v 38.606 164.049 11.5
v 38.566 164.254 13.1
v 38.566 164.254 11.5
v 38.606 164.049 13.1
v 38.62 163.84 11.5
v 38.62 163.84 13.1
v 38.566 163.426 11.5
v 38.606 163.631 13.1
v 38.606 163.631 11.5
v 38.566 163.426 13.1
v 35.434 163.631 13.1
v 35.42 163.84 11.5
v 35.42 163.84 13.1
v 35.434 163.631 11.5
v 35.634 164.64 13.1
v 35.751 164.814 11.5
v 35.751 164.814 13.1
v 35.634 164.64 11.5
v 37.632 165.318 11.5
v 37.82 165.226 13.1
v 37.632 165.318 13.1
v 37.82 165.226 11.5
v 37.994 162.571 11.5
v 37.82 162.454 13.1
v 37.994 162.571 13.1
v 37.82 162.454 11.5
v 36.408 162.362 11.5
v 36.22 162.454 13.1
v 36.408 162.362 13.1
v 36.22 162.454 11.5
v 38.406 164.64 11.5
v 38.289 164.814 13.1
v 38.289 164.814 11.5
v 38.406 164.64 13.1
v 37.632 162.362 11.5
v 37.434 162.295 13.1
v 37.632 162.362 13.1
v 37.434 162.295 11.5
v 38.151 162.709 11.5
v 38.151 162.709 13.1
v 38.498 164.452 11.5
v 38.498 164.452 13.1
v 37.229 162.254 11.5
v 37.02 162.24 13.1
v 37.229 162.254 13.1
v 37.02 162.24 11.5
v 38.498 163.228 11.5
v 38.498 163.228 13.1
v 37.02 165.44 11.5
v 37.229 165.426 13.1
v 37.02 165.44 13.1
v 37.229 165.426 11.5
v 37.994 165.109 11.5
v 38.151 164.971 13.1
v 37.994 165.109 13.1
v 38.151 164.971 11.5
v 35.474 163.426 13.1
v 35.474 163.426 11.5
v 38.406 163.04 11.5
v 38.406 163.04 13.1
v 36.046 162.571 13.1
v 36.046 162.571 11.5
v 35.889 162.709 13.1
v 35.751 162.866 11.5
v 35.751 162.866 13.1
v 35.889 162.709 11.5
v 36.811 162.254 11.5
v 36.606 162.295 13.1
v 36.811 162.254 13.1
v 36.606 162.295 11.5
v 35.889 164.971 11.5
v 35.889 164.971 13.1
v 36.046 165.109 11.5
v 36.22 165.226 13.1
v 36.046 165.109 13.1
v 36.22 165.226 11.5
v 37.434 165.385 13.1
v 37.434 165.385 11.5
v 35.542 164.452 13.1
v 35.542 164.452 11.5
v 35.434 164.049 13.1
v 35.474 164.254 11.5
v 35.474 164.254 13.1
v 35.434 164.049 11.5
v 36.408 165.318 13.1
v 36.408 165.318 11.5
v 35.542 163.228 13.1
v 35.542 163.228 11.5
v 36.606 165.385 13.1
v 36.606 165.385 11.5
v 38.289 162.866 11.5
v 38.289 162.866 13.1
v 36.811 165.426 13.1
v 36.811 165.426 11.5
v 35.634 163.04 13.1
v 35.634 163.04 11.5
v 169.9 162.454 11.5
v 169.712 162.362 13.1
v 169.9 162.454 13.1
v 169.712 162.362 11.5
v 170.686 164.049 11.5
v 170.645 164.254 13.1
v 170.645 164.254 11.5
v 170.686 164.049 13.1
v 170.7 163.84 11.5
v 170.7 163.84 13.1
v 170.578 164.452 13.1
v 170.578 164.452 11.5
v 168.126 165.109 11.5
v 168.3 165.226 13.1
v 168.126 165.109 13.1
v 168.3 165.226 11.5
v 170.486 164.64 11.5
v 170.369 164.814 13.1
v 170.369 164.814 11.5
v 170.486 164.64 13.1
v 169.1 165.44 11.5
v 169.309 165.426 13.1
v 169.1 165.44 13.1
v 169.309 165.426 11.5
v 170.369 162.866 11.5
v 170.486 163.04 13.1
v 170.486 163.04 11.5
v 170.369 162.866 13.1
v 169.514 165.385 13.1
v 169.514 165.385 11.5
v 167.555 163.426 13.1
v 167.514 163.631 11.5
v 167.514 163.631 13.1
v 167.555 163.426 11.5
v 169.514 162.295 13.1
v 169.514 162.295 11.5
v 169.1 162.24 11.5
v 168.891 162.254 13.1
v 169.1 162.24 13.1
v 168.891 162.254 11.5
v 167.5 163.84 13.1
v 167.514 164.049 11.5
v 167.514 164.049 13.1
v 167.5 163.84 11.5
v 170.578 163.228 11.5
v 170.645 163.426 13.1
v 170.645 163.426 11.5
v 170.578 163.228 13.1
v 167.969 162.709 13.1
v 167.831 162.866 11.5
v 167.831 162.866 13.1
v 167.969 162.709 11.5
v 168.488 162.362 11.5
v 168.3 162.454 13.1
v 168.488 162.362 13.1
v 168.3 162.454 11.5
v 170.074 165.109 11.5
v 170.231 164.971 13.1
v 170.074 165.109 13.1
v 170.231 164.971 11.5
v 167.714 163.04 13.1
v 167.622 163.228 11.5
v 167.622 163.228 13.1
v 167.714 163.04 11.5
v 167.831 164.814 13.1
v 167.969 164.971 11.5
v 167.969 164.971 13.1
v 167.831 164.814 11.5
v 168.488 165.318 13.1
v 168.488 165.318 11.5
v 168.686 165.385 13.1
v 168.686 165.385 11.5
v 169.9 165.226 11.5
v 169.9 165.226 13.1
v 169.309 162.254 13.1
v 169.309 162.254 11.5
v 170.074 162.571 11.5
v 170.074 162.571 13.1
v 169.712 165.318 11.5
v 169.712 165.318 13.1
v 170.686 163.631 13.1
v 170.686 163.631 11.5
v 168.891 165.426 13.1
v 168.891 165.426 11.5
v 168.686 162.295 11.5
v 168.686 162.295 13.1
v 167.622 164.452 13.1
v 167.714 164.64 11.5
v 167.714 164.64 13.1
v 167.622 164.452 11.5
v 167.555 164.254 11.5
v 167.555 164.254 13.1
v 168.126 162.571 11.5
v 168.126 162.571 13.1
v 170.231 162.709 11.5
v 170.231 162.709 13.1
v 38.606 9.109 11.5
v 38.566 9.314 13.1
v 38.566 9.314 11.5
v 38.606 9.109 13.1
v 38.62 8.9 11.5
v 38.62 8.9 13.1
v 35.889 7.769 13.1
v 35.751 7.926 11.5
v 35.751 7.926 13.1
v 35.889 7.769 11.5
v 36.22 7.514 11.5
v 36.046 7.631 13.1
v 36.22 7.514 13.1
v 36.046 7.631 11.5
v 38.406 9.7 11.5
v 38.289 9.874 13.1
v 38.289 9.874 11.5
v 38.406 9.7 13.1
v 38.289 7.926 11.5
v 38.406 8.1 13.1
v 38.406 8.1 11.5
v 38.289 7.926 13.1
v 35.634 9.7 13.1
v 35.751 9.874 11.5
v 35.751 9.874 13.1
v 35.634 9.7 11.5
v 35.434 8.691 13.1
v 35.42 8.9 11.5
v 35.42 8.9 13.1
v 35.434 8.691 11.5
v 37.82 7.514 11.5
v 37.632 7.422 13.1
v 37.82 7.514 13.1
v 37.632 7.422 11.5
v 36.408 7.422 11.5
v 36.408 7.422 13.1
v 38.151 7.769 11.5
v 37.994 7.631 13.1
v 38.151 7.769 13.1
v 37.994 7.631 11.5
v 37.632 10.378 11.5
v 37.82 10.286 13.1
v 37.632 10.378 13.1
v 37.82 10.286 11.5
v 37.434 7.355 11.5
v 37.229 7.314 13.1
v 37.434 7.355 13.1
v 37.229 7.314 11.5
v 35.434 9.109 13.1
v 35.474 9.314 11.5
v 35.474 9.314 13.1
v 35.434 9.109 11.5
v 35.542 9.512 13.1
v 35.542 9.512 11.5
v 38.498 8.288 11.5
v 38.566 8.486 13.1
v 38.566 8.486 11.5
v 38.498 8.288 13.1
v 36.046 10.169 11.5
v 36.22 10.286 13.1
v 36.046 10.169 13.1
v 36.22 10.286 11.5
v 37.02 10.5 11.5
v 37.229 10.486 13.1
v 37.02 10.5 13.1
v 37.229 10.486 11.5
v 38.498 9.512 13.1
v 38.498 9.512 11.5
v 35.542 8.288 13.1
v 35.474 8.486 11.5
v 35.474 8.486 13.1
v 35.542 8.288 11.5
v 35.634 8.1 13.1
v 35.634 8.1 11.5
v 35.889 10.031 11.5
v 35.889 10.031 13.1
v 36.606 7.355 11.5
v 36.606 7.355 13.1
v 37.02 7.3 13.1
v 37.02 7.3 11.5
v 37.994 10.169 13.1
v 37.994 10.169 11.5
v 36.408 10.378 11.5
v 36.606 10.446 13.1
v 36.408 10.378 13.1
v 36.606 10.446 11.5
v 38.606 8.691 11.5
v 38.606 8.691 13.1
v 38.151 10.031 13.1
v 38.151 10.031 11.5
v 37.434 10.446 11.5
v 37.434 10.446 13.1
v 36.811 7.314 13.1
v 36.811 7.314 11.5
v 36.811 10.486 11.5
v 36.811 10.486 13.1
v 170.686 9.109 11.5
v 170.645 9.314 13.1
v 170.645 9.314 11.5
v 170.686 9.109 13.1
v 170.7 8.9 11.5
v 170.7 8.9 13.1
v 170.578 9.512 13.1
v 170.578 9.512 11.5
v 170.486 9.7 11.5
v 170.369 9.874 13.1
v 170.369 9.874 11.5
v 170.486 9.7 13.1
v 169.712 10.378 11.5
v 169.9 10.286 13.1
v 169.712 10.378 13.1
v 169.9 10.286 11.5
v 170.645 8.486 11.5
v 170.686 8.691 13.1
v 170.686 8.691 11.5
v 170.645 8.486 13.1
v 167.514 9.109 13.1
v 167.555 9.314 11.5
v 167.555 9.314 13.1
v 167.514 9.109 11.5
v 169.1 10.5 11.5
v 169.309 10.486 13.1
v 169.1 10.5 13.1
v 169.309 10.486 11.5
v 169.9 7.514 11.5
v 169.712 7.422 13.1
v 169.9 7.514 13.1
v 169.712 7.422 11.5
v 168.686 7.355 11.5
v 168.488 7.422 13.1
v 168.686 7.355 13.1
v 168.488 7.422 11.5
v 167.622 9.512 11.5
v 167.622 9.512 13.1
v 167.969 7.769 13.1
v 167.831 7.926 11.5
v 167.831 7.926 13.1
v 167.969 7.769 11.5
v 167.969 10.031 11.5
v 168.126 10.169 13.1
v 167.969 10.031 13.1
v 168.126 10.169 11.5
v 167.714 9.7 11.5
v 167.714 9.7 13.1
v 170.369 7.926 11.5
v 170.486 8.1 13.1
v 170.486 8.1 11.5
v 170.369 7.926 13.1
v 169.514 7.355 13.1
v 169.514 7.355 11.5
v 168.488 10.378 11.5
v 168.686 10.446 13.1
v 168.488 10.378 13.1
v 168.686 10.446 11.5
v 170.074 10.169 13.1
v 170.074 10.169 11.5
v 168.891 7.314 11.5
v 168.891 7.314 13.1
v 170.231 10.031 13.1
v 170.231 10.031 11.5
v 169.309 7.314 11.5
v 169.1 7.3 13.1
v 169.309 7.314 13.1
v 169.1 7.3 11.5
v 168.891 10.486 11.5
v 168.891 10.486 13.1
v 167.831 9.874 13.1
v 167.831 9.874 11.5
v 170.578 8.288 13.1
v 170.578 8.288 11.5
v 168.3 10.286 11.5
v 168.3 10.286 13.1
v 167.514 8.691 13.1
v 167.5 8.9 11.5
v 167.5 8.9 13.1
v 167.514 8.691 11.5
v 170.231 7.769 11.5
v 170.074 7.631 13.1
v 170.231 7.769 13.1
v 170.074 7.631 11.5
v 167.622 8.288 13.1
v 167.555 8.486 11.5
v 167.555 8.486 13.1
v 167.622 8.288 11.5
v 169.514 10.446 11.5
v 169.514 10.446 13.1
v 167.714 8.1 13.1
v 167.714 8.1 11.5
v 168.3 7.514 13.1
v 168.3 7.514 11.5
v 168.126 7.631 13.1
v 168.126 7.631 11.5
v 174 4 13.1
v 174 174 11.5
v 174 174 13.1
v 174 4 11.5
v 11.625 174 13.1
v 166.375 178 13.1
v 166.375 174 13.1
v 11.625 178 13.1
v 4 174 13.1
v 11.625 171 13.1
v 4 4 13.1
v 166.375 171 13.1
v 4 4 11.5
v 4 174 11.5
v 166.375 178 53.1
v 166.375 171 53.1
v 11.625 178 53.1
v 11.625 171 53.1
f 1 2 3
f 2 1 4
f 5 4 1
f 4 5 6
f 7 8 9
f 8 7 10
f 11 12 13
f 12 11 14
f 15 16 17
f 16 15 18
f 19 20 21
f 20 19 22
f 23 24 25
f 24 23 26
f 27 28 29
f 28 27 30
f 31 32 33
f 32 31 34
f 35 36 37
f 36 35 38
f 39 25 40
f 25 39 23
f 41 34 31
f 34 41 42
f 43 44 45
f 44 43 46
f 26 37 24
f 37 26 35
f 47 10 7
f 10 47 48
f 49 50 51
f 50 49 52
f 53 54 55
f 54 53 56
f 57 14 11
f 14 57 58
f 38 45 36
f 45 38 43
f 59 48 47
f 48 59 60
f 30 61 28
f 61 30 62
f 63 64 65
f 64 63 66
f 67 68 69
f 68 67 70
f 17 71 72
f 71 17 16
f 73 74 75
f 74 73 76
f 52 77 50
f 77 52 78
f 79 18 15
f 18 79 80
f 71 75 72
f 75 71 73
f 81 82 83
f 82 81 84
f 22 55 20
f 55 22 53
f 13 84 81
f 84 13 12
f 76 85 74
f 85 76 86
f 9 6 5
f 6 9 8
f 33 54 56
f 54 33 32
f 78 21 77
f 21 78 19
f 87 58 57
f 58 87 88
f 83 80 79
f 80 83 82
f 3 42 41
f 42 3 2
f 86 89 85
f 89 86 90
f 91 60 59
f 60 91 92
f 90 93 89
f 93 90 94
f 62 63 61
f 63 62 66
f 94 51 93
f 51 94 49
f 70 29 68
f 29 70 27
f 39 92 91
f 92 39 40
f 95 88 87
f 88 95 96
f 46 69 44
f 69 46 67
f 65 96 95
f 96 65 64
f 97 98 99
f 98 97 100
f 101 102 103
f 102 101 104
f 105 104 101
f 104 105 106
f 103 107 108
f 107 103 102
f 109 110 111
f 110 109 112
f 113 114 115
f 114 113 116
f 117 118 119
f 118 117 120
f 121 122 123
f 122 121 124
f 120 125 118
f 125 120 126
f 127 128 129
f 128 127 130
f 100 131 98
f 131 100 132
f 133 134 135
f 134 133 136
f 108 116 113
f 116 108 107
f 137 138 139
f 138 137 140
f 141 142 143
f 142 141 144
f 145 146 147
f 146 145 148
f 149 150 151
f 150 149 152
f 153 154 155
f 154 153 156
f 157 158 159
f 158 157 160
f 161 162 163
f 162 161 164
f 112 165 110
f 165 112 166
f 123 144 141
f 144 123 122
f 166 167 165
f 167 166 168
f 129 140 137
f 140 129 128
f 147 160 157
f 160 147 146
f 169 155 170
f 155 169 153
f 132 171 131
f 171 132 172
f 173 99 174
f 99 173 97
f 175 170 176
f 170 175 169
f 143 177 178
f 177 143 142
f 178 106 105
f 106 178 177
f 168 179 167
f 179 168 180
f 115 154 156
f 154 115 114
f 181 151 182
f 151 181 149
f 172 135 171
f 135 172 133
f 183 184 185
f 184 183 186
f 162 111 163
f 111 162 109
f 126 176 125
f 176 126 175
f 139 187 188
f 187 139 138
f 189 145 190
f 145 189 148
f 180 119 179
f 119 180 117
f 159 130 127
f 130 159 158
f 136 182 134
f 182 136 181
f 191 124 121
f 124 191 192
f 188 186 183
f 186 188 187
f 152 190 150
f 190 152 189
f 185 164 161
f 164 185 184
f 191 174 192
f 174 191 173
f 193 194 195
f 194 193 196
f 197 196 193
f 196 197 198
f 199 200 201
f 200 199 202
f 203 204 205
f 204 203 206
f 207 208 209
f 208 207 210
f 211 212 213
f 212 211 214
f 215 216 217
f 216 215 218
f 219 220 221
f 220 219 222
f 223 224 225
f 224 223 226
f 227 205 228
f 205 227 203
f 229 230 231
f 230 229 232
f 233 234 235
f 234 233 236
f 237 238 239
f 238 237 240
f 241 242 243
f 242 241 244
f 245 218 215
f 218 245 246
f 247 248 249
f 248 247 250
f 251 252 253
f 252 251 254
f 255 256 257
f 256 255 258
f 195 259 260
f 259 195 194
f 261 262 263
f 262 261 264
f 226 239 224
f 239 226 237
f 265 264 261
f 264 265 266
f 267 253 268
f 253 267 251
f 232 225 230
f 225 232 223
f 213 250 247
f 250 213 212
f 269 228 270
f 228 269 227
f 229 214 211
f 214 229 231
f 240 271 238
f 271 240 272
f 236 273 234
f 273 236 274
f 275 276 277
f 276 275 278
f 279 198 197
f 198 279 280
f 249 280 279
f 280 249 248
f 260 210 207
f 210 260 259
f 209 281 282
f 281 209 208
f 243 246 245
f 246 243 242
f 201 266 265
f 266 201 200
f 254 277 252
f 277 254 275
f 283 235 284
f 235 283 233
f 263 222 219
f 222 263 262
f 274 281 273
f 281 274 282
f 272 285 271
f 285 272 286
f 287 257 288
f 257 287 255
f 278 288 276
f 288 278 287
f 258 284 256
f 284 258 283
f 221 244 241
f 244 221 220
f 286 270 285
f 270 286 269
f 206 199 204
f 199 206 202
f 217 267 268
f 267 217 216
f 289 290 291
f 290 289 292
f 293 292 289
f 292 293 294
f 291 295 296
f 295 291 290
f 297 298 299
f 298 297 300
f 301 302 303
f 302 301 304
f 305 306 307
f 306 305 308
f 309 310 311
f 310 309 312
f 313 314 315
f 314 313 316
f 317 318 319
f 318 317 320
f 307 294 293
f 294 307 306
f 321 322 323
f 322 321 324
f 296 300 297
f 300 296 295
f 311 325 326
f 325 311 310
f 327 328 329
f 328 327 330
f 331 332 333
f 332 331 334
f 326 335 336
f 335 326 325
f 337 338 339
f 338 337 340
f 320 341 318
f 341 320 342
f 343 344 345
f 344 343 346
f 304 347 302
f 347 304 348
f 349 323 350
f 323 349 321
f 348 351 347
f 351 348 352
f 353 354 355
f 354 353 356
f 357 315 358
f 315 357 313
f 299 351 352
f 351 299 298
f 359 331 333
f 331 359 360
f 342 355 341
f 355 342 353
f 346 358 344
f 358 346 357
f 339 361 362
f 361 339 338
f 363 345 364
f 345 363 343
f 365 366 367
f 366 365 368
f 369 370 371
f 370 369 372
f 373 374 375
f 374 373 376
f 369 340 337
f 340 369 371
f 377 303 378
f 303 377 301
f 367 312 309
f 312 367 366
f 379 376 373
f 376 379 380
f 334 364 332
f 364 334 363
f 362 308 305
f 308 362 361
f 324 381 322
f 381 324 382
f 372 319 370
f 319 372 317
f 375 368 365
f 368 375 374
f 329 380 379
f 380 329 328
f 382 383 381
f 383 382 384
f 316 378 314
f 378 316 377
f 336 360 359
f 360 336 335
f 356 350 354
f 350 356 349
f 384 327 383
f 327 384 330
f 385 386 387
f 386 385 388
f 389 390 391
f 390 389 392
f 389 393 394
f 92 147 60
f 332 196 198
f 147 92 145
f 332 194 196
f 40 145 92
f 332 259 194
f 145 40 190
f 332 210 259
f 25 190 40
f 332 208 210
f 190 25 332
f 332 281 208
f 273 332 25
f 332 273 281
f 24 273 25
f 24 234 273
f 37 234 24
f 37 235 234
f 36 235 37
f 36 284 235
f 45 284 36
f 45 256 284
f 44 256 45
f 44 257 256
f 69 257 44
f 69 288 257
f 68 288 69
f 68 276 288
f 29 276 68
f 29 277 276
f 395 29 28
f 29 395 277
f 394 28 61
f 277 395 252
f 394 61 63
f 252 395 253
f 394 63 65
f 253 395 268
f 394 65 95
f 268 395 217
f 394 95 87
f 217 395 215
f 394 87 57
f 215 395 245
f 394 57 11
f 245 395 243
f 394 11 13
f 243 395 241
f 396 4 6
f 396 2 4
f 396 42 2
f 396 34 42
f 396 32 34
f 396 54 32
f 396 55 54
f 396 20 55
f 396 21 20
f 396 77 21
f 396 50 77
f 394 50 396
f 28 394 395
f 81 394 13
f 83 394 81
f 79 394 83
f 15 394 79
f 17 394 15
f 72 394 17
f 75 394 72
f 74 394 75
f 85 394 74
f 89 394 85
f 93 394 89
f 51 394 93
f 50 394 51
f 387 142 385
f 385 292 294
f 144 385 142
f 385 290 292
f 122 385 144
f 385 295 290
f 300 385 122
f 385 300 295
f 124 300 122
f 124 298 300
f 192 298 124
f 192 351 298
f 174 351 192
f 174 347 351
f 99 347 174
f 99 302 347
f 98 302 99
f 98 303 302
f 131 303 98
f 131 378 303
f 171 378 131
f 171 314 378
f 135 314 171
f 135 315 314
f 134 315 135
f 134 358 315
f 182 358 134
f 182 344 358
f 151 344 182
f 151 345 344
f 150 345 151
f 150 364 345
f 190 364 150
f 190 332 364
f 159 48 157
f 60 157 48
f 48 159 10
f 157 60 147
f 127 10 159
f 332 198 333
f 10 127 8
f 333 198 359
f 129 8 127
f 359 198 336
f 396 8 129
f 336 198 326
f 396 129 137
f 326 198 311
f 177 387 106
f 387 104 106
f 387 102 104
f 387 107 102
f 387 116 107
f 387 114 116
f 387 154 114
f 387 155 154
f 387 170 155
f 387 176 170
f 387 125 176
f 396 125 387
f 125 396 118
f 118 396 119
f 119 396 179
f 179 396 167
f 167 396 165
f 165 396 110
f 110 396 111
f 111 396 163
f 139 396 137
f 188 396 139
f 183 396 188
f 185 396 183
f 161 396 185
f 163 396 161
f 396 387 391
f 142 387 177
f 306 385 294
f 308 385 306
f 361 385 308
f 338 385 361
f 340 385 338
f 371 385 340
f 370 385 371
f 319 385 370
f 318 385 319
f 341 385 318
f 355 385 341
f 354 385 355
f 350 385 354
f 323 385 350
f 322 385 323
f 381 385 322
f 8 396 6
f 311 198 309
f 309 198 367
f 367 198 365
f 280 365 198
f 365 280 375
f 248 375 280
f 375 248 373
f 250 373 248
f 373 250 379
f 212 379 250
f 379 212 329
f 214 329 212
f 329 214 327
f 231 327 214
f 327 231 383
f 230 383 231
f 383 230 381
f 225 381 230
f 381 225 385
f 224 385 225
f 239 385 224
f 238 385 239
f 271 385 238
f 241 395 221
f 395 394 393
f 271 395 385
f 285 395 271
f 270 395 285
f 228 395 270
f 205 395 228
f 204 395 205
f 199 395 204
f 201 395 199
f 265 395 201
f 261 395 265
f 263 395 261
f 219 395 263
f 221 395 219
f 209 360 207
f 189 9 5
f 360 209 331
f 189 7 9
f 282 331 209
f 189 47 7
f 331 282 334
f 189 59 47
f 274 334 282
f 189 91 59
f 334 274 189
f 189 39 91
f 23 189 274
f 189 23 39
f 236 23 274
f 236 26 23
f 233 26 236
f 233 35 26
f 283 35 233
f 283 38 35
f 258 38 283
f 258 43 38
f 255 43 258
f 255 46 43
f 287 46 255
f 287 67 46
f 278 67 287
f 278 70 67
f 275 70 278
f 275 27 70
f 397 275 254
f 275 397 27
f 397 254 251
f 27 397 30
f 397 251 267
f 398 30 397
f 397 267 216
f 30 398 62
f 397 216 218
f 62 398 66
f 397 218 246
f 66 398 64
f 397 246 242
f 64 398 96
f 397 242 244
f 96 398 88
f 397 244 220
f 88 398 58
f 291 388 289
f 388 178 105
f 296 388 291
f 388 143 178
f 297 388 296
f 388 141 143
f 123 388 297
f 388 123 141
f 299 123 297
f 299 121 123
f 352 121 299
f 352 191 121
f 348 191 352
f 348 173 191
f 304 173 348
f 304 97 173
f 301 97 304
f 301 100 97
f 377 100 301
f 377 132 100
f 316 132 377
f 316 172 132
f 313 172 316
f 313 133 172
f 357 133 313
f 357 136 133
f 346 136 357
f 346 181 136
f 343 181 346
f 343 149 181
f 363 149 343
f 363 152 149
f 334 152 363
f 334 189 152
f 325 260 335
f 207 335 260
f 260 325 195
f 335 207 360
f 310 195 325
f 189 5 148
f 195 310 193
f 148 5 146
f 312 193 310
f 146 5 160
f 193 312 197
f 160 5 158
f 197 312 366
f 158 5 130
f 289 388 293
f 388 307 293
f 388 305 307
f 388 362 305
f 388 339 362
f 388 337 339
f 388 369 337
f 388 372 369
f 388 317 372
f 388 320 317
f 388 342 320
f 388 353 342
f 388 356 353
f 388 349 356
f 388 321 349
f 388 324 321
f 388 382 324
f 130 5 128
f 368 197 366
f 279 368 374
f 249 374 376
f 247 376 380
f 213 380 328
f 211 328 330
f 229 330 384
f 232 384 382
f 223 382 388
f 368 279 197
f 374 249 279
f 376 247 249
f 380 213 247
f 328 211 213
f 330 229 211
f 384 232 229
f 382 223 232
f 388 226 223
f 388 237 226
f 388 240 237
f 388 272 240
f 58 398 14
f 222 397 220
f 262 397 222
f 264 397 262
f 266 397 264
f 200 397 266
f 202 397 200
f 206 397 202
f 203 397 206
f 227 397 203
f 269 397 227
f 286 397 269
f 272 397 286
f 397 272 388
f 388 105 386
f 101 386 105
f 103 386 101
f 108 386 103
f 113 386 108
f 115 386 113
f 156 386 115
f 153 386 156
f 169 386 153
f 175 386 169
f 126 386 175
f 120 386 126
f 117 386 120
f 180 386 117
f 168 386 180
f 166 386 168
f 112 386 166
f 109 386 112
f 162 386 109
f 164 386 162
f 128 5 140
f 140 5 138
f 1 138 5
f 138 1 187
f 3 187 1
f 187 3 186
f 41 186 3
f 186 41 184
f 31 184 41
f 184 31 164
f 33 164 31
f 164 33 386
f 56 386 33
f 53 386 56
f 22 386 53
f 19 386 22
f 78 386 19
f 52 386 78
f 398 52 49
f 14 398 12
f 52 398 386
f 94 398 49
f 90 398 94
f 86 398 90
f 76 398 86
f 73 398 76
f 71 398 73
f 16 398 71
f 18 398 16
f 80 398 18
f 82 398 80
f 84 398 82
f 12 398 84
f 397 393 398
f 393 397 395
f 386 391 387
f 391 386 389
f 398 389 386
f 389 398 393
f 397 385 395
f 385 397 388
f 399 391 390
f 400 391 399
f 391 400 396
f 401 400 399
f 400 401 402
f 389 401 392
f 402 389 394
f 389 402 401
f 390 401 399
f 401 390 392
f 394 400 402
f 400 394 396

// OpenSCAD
// The mini-itx board envelope from the Mini-ITX case example, as the eval's reference.
// Render: openscad -o model.stl model.scad
include <../../../../../examples/mini-itx-case/case.scad>
part = "board";
